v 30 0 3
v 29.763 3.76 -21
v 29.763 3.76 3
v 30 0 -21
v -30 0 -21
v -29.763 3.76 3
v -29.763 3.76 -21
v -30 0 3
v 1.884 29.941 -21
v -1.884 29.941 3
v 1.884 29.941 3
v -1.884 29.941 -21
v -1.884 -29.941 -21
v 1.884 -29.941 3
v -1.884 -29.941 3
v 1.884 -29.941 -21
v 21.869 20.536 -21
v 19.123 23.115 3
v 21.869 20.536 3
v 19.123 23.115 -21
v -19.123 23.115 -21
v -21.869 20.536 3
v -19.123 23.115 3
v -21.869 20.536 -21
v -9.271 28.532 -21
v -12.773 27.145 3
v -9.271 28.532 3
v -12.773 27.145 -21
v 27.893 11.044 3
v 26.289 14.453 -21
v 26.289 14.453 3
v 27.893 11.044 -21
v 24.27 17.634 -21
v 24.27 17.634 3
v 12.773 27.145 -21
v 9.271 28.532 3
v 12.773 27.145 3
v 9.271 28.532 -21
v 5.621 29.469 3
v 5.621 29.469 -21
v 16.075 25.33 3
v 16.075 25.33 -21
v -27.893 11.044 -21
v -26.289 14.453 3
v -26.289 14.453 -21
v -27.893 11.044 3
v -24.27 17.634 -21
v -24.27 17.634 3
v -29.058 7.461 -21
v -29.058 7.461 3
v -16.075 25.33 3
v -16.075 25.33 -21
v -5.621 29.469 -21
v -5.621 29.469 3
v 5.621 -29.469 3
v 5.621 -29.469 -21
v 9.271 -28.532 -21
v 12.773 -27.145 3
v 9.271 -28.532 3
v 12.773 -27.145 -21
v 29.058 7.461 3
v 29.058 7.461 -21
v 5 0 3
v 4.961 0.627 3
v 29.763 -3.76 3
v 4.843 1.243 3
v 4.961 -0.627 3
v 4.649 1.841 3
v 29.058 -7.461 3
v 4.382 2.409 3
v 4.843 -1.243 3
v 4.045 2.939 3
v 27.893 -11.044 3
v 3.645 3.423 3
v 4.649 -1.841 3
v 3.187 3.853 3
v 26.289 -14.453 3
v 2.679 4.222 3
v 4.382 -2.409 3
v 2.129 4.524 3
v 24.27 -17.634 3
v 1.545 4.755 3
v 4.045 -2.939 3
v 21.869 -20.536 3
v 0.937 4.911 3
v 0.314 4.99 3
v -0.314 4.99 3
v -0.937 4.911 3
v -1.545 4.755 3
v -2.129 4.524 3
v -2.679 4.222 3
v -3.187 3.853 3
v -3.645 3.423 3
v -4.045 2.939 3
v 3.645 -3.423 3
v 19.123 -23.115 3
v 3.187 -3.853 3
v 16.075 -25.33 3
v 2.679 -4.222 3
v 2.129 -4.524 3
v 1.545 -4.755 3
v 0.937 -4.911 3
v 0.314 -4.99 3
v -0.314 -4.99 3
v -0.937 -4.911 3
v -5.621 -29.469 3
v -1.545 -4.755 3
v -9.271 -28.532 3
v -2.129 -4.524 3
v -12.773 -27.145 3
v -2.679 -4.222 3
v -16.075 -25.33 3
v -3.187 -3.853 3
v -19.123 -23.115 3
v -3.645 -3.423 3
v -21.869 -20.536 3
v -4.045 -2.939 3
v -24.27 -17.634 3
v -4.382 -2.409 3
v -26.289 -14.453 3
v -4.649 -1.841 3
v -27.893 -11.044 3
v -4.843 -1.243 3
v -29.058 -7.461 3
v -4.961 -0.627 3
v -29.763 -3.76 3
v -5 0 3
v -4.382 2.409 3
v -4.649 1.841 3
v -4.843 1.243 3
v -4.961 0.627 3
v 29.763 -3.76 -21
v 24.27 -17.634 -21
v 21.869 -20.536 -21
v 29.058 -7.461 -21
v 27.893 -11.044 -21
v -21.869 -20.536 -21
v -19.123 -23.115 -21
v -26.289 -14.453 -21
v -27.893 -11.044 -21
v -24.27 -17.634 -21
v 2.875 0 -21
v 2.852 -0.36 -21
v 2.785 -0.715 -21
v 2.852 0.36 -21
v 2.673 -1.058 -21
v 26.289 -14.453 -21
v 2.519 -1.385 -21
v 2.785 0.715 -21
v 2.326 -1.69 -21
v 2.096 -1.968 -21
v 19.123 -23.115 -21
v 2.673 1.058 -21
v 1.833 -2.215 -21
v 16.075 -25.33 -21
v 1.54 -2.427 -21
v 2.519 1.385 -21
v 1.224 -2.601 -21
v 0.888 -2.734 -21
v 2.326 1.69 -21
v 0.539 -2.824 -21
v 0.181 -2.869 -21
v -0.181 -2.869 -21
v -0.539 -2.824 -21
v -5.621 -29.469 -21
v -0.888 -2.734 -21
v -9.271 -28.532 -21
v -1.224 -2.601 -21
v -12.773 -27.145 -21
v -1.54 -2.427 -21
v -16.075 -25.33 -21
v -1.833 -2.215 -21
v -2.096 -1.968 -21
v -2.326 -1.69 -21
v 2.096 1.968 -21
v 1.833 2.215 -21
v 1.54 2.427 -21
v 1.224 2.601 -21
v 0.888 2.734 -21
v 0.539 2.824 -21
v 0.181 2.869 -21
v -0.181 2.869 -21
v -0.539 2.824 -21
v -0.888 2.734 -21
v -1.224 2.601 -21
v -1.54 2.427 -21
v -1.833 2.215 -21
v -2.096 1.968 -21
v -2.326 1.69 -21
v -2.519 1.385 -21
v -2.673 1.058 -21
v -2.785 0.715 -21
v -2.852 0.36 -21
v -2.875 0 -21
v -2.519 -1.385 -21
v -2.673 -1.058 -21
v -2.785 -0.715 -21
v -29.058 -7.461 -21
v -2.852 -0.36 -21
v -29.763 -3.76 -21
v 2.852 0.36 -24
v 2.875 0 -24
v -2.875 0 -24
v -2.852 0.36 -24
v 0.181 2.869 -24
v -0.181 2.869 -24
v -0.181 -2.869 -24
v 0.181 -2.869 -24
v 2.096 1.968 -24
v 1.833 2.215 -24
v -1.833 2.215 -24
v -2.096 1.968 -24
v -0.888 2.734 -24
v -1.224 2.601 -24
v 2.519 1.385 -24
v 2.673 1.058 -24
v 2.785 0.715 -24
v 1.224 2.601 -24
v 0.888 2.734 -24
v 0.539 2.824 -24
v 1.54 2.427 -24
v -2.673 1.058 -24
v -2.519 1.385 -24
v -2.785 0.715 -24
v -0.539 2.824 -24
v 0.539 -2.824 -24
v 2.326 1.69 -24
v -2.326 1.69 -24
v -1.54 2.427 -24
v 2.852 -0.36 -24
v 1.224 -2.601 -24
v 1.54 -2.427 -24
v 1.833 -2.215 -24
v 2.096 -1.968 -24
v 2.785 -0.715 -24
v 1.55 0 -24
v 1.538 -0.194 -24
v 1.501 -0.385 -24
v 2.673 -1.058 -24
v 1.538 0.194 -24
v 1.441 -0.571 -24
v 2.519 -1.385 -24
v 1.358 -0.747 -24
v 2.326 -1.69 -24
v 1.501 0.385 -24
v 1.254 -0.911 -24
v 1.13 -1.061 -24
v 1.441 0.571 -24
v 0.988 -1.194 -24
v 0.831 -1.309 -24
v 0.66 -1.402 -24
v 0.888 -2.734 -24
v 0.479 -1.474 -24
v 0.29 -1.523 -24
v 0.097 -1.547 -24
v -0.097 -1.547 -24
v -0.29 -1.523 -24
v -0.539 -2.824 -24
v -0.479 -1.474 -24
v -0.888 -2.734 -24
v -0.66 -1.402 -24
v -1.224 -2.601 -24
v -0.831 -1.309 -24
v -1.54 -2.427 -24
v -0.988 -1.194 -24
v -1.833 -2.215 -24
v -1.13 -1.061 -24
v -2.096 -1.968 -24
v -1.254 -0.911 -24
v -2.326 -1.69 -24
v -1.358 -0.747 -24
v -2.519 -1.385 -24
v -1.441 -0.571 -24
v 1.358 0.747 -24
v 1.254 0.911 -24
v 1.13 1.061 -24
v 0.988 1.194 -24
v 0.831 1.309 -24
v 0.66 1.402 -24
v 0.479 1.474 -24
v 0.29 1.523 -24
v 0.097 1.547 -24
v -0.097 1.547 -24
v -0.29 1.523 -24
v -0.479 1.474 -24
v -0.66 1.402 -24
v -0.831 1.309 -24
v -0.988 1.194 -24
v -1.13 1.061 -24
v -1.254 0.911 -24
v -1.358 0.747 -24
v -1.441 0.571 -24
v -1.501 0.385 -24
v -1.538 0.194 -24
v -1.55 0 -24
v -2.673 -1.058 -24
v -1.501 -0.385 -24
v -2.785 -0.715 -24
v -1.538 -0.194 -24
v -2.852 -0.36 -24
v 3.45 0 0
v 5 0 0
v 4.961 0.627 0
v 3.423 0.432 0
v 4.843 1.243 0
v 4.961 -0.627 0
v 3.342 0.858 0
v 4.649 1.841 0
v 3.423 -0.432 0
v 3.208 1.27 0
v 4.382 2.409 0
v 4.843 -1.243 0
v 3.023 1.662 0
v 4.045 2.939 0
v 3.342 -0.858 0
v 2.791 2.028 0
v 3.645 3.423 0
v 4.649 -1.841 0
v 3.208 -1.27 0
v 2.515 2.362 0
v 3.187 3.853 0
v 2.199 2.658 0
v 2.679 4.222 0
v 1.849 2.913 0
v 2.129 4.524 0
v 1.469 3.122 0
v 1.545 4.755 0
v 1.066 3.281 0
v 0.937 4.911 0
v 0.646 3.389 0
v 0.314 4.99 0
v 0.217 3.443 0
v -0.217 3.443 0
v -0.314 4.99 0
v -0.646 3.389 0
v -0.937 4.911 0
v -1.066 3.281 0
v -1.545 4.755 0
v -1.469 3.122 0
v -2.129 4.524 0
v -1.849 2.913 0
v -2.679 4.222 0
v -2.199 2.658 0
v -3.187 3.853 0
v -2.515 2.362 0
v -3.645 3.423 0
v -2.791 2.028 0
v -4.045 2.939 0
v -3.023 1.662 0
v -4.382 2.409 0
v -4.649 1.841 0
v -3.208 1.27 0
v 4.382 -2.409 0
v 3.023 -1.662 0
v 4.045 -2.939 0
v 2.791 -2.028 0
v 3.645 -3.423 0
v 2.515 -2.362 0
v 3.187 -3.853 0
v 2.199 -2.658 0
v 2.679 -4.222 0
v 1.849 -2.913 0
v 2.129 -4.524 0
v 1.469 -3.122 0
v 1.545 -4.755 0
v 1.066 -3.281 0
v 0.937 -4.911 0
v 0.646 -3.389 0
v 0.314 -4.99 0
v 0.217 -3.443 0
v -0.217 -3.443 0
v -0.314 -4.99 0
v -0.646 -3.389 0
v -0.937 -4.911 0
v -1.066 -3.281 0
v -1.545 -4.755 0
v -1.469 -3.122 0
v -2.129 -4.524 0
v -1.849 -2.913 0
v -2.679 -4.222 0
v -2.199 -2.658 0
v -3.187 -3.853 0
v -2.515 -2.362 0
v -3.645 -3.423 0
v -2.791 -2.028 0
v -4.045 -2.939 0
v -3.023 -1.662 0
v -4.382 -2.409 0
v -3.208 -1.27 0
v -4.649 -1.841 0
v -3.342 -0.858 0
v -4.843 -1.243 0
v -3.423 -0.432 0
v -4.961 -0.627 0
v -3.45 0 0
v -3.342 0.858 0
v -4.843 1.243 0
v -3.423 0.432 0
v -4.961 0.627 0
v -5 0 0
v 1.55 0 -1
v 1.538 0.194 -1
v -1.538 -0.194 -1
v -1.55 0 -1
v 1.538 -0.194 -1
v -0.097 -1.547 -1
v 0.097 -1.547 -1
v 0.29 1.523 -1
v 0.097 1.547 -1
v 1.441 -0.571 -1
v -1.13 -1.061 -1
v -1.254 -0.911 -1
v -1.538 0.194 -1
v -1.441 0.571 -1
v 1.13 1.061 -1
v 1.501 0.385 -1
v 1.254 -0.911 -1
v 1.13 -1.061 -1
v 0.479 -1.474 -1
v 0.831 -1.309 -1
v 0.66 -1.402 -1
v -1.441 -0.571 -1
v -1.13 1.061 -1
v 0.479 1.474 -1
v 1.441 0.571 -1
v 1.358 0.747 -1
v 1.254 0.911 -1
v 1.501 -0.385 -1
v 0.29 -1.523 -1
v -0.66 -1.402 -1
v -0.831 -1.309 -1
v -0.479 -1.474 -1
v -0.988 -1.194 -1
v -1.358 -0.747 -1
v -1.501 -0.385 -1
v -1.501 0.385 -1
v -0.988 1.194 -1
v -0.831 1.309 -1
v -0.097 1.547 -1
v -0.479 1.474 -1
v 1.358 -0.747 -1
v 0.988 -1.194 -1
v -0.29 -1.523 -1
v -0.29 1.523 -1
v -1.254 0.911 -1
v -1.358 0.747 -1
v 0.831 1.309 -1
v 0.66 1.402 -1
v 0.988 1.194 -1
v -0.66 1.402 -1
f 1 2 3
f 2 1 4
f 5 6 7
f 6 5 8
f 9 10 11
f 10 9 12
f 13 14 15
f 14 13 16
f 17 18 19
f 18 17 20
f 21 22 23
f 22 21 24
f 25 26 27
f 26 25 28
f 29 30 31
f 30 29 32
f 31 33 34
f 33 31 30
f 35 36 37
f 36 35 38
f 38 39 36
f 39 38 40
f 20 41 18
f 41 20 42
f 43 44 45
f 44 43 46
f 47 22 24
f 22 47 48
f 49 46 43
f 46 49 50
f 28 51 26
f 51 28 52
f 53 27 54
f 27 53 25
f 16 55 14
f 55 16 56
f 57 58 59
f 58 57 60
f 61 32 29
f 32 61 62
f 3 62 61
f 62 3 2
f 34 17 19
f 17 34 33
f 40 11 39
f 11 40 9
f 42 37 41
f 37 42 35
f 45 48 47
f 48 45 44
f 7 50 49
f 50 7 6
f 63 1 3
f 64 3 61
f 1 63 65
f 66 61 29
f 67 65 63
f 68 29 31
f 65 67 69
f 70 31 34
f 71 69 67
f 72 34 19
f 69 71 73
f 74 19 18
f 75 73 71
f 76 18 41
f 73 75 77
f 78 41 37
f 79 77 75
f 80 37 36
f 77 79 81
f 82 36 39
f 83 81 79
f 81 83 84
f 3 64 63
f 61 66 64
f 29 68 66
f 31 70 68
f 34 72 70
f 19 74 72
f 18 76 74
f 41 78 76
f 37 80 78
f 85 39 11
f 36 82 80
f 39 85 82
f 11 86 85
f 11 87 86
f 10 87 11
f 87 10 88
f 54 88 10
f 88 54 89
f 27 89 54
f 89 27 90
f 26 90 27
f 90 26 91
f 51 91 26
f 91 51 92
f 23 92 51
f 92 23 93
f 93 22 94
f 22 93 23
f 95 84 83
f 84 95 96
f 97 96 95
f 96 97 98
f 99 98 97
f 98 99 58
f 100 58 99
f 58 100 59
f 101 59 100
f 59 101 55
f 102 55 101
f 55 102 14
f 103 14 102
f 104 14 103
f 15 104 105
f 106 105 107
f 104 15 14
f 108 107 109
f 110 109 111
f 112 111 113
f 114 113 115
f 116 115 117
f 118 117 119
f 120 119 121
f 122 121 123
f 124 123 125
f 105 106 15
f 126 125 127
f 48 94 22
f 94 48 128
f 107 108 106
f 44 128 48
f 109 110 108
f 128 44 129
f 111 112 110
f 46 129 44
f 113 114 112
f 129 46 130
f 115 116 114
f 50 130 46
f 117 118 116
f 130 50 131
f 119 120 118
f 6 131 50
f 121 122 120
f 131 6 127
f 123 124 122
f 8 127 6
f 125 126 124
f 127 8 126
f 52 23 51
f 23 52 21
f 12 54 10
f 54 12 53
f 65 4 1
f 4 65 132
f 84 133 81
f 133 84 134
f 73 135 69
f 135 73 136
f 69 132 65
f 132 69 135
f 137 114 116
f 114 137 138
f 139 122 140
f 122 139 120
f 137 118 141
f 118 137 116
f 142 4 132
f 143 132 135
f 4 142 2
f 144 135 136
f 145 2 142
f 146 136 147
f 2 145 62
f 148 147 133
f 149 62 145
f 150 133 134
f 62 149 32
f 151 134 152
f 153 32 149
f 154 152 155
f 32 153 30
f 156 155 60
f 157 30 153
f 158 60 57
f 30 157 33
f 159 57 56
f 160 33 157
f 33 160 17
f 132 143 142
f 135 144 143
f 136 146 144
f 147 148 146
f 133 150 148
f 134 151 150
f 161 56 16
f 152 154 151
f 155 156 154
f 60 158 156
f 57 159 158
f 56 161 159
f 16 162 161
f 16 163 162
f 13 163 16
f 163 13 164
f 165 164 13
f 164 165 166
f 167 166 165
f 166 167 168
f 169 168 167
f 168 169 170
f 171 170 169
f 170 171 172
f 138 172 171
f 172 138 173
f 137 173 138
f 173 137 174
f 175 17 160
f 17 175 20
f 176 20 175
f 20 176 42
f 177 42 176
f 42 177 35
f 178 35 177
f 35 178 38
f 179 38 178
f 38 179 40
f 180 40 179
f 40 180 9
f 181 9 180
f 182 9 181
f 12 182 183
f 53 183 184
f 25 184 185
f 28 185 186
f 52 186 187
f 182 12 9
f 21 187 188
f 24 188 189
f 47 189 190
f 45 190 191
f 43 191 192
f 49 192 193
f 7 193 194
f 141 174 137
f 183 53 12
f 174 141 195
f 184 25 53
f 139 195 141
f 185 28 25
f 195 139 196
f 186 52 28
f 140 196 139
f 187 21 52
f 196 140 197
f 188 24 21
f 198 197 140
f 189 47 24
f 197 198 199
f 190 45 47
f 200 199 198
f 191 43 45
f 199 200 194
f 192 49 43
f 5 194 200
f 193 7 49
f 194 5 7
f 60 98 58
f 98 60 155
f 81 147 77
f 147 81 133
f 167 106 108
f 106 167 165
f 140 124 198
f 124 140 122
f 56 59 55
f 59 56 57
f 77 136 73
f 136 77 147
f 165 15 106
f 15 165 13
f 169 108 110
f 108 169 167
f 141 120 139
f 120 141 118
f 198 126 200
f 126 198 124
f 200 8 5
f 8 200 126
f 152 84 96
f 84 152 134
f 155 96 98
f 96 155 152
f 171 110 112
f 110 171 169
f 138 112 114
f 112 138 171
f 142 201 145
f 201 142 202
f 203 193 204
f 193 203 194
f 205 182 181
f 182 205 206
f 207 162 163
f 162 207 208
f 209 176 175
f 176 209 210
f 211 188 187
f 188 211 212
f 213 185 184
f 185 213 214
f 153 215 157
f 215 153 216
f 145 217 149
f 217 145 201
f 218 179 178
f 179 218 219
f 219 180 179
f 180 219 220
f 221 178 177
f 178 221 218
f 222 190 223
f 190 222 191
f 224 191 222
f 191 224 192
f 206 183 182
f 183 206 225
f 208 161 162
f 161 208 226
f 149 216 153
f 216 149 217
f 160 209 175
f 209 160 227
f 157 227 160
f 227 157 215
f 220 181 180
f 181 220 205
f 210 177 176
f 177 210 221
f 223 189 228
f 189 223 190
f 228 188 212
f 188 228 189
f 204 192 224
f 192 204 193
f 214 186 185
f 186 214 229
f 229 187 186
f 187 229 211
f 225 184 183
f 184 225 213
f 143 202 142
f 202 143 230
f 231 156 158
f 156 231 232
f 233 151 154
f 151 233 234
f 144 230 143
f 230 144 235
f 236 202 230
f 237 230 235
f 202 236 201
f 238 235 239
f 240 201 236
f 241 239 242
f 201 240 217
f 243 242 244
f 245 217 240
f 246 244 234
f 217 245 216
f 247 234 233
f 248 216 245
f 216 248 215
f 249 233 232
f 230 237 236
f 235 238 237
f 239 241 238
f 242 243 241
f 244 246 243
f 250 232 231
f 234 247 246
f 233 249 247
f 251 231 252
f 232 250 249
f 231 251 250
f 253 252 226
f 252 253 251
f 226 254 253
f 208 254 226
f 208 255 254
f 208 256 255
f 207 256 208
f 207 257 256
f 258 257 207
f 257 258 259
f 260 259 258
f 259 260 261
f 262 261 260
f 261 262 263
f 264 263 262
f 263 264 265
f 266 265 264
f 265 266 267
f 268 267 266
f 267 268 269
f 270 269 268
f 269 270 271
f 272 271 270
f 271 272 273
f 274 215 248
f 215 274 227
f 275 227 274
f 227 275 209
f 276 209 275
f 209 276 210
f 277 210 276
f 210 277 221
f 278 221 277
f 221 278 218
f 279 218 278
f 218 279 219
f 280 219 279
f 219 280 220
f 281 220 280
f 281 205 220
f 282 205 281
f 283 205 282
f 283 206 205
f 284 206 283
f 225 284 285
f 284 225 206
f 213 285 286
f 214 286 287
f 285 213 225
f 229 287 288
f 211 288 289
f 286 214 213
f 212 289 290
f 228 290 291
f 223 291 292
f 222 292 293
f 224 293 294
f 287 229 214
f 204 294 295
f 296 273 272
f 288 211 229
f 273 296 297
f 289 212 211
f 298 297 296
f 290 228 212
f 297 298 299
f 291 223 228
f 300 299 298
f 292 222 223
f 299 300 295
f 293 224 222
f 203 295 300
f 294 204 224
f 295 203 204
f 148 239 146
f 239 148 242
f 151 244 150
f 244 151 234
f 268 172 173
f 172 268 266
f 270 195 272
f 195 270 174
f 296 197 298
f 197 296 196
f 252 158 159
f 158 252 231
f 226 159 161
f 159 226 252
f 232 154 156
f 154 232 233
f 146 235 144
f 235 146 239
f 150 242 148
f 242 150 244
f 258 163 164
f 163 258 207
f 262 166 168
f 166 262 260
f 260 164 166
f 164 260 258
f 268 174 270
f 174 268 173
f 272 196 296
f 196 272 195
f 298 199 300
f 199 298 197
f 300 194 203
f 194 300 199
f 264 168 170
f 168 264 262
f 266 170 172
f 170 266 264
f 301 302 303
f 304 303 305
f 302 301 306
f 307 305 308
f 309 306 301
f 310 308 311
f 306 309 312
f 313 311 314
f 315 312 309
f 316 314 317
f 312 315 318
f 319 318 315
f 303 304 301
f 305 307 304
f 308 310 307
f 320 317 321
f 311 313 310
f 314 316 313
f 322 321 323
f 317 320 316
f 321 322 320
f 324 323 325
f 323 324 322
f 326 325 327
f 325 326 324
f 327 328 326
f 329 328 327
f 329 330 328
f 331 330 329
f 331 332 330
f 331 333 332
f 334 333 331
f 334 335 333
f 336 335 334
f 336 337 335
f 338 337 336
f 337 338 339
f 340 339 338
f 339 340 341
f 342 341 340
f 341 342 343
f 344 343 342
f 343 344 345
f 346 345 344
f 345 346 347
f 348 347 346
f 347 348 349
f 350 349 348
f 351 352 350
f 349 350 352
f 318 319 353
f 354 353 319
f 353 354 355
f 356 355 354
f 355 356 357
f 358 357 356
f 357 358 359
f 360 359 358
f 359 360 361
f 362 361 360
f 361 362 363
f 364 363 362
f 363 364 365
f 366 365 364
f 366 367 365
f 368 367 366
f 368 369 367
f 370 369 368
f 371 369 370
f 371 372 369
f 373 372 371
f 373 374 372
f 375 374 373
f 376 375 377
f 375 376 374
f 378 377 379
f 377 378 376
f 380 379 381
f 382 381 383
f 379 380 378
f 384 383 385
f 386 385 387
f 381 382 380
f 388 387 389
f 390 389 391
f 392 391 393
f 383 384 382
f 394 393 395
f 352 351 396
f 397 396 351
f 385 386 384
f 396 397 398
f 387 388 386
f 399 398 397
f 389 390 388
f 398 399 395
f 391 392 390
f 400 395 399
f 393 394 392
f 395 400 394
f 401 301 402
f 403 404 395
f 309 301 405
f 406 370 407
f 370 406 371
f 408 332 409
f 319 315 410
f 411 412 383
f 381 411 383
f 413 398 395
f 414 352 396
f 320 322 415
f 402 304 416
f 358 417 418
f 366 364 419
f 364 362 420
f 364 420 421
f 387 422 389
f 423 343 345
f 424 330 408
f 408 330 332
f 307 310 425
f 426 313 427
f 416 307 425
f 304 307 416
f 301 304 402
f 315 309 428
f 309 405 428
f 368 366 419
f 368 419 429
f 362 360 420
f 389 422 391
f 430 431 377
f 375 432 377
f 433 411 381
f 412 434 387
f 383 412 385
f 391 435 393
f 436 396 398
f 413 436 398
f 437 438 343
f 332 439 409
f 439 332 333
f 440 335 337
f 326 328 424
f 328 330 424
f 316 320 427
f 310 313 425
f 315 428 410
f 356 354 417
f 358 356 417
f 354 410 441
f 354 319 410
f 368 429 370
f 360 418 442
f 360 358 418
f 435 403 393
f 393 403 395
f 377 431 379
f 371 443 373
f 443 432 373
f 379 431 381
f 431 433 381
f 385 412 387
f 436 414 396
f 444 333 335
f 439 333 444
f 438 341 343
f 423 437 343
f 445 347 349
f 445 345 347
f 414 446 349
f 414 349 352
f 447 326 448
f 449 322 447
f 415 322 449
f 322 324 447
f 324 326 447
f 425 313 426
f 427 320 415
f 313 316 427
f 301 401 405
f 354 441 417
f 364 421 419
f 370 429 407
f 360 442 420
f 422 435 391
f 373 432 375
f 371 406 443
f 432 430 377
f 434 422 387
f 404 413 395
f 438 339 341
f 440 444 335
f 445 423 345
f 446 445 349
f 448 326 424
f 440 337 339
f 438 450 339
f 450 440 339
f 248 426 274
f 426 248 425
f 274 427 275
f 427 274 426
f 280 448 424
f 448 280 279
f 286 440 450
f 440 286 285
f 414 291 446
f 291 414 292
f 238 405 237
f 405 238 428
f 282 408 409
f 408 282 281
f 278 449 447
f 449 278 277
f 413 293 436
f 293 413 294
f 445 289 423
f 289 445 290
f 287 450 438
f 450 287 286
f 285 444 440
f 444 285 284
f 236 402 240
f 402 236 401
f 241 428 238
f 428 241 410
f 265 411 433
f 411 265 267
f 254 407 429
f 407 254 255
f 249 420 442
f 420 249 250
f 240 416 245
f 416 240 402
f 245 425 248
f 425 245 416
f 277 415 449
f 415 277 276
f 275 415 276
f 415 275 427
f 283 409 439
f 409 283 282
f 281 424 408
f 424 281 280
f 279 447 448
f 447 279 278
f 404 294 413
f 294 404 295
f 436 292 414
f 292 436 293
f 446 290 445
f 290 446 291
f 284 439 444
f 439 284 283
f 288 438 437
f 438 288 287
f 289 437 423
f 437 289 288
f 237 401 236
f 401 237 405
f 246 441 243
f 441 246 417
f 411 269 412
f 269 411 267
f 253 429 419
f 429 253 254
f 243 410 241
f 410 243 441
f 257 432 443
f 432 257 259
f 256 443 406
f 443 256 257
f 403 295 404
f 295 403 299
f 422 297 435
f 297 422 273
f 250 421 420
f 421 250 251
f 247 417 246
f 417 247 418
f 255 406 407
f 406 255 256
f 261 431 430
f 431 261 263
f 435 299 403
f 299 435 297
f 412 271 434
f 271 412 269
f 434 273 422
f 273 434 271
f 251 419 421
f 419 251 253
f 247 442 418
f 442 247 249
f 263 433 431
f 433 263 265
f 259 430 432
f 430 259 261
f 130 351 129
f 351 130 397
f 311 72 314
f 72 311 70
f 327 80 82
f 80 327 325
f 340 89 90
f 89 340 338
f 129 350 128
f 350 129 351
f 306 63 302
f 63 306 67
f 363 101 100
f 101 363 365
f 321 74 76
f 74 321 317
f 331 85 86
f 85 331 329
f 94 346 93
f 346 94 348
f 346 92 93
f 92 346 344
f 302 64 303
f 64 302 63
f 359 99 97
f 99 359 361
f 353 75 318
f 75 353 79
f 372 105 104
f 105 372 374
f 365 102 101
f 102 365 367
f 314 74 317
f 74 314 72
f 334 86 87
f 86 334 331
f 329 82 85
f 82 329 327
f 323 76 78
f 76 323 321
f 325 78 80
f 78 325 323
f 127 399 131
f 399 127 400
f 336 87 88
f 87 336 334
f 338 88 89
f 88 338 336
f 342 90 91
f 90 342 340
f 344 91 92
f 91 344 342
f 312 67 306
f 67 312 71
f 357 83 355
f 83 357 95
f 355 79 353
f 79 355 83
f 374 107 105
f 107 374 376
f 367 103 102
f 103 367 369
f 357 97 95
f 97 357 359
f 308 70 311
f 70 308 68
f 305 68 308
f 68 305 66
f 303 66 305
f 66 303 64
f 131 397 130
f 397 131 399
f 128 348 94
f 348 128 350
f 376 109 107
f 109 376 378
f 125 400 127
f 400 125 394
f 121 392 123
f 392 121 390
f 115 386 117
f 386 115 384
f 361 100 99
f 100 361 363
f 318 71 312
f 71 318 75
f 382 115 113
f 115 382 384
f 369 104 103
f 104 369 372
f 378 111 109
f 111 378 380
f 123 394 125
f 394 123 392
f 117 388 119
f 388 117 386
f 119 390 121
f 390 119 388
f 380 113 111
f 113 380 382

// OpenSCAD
$fn = 50;

difference() {
	union() {
		translate(v = [0, 0, -21.0]) {
			cylinder(h = 24, r = 30.0);
		}
		#translate(v = [0, 0, -24.0]) {
			cylinder(h = 24, r = 2.875);
		}
	}
	union() {
		translate(v = [0, 0, 0]) {
			rotate(a = [0, 0, 0]) {
				difference() {
					union() {
						translate(v = [0, 0, -24.0]) {
							cylinder(h = 24, r = 1.25);
						}
						translate(v = [0, 0, -1.0]) {
							cylinder(h = 1.0, r1 = 1.55, r2 = 3.45);
						}
						translate(v = [0, 0, -24.0]) {
							cylinder(h = 24, r = 1.55);
						}
						translate(v = [0, 0, -24.0]) {
							cylinder(h = 24, r = 1.25);
						}
					}
					union();
				}
			}
		}
		#cylinder(h = 3, r = 5.0);
	}
}
